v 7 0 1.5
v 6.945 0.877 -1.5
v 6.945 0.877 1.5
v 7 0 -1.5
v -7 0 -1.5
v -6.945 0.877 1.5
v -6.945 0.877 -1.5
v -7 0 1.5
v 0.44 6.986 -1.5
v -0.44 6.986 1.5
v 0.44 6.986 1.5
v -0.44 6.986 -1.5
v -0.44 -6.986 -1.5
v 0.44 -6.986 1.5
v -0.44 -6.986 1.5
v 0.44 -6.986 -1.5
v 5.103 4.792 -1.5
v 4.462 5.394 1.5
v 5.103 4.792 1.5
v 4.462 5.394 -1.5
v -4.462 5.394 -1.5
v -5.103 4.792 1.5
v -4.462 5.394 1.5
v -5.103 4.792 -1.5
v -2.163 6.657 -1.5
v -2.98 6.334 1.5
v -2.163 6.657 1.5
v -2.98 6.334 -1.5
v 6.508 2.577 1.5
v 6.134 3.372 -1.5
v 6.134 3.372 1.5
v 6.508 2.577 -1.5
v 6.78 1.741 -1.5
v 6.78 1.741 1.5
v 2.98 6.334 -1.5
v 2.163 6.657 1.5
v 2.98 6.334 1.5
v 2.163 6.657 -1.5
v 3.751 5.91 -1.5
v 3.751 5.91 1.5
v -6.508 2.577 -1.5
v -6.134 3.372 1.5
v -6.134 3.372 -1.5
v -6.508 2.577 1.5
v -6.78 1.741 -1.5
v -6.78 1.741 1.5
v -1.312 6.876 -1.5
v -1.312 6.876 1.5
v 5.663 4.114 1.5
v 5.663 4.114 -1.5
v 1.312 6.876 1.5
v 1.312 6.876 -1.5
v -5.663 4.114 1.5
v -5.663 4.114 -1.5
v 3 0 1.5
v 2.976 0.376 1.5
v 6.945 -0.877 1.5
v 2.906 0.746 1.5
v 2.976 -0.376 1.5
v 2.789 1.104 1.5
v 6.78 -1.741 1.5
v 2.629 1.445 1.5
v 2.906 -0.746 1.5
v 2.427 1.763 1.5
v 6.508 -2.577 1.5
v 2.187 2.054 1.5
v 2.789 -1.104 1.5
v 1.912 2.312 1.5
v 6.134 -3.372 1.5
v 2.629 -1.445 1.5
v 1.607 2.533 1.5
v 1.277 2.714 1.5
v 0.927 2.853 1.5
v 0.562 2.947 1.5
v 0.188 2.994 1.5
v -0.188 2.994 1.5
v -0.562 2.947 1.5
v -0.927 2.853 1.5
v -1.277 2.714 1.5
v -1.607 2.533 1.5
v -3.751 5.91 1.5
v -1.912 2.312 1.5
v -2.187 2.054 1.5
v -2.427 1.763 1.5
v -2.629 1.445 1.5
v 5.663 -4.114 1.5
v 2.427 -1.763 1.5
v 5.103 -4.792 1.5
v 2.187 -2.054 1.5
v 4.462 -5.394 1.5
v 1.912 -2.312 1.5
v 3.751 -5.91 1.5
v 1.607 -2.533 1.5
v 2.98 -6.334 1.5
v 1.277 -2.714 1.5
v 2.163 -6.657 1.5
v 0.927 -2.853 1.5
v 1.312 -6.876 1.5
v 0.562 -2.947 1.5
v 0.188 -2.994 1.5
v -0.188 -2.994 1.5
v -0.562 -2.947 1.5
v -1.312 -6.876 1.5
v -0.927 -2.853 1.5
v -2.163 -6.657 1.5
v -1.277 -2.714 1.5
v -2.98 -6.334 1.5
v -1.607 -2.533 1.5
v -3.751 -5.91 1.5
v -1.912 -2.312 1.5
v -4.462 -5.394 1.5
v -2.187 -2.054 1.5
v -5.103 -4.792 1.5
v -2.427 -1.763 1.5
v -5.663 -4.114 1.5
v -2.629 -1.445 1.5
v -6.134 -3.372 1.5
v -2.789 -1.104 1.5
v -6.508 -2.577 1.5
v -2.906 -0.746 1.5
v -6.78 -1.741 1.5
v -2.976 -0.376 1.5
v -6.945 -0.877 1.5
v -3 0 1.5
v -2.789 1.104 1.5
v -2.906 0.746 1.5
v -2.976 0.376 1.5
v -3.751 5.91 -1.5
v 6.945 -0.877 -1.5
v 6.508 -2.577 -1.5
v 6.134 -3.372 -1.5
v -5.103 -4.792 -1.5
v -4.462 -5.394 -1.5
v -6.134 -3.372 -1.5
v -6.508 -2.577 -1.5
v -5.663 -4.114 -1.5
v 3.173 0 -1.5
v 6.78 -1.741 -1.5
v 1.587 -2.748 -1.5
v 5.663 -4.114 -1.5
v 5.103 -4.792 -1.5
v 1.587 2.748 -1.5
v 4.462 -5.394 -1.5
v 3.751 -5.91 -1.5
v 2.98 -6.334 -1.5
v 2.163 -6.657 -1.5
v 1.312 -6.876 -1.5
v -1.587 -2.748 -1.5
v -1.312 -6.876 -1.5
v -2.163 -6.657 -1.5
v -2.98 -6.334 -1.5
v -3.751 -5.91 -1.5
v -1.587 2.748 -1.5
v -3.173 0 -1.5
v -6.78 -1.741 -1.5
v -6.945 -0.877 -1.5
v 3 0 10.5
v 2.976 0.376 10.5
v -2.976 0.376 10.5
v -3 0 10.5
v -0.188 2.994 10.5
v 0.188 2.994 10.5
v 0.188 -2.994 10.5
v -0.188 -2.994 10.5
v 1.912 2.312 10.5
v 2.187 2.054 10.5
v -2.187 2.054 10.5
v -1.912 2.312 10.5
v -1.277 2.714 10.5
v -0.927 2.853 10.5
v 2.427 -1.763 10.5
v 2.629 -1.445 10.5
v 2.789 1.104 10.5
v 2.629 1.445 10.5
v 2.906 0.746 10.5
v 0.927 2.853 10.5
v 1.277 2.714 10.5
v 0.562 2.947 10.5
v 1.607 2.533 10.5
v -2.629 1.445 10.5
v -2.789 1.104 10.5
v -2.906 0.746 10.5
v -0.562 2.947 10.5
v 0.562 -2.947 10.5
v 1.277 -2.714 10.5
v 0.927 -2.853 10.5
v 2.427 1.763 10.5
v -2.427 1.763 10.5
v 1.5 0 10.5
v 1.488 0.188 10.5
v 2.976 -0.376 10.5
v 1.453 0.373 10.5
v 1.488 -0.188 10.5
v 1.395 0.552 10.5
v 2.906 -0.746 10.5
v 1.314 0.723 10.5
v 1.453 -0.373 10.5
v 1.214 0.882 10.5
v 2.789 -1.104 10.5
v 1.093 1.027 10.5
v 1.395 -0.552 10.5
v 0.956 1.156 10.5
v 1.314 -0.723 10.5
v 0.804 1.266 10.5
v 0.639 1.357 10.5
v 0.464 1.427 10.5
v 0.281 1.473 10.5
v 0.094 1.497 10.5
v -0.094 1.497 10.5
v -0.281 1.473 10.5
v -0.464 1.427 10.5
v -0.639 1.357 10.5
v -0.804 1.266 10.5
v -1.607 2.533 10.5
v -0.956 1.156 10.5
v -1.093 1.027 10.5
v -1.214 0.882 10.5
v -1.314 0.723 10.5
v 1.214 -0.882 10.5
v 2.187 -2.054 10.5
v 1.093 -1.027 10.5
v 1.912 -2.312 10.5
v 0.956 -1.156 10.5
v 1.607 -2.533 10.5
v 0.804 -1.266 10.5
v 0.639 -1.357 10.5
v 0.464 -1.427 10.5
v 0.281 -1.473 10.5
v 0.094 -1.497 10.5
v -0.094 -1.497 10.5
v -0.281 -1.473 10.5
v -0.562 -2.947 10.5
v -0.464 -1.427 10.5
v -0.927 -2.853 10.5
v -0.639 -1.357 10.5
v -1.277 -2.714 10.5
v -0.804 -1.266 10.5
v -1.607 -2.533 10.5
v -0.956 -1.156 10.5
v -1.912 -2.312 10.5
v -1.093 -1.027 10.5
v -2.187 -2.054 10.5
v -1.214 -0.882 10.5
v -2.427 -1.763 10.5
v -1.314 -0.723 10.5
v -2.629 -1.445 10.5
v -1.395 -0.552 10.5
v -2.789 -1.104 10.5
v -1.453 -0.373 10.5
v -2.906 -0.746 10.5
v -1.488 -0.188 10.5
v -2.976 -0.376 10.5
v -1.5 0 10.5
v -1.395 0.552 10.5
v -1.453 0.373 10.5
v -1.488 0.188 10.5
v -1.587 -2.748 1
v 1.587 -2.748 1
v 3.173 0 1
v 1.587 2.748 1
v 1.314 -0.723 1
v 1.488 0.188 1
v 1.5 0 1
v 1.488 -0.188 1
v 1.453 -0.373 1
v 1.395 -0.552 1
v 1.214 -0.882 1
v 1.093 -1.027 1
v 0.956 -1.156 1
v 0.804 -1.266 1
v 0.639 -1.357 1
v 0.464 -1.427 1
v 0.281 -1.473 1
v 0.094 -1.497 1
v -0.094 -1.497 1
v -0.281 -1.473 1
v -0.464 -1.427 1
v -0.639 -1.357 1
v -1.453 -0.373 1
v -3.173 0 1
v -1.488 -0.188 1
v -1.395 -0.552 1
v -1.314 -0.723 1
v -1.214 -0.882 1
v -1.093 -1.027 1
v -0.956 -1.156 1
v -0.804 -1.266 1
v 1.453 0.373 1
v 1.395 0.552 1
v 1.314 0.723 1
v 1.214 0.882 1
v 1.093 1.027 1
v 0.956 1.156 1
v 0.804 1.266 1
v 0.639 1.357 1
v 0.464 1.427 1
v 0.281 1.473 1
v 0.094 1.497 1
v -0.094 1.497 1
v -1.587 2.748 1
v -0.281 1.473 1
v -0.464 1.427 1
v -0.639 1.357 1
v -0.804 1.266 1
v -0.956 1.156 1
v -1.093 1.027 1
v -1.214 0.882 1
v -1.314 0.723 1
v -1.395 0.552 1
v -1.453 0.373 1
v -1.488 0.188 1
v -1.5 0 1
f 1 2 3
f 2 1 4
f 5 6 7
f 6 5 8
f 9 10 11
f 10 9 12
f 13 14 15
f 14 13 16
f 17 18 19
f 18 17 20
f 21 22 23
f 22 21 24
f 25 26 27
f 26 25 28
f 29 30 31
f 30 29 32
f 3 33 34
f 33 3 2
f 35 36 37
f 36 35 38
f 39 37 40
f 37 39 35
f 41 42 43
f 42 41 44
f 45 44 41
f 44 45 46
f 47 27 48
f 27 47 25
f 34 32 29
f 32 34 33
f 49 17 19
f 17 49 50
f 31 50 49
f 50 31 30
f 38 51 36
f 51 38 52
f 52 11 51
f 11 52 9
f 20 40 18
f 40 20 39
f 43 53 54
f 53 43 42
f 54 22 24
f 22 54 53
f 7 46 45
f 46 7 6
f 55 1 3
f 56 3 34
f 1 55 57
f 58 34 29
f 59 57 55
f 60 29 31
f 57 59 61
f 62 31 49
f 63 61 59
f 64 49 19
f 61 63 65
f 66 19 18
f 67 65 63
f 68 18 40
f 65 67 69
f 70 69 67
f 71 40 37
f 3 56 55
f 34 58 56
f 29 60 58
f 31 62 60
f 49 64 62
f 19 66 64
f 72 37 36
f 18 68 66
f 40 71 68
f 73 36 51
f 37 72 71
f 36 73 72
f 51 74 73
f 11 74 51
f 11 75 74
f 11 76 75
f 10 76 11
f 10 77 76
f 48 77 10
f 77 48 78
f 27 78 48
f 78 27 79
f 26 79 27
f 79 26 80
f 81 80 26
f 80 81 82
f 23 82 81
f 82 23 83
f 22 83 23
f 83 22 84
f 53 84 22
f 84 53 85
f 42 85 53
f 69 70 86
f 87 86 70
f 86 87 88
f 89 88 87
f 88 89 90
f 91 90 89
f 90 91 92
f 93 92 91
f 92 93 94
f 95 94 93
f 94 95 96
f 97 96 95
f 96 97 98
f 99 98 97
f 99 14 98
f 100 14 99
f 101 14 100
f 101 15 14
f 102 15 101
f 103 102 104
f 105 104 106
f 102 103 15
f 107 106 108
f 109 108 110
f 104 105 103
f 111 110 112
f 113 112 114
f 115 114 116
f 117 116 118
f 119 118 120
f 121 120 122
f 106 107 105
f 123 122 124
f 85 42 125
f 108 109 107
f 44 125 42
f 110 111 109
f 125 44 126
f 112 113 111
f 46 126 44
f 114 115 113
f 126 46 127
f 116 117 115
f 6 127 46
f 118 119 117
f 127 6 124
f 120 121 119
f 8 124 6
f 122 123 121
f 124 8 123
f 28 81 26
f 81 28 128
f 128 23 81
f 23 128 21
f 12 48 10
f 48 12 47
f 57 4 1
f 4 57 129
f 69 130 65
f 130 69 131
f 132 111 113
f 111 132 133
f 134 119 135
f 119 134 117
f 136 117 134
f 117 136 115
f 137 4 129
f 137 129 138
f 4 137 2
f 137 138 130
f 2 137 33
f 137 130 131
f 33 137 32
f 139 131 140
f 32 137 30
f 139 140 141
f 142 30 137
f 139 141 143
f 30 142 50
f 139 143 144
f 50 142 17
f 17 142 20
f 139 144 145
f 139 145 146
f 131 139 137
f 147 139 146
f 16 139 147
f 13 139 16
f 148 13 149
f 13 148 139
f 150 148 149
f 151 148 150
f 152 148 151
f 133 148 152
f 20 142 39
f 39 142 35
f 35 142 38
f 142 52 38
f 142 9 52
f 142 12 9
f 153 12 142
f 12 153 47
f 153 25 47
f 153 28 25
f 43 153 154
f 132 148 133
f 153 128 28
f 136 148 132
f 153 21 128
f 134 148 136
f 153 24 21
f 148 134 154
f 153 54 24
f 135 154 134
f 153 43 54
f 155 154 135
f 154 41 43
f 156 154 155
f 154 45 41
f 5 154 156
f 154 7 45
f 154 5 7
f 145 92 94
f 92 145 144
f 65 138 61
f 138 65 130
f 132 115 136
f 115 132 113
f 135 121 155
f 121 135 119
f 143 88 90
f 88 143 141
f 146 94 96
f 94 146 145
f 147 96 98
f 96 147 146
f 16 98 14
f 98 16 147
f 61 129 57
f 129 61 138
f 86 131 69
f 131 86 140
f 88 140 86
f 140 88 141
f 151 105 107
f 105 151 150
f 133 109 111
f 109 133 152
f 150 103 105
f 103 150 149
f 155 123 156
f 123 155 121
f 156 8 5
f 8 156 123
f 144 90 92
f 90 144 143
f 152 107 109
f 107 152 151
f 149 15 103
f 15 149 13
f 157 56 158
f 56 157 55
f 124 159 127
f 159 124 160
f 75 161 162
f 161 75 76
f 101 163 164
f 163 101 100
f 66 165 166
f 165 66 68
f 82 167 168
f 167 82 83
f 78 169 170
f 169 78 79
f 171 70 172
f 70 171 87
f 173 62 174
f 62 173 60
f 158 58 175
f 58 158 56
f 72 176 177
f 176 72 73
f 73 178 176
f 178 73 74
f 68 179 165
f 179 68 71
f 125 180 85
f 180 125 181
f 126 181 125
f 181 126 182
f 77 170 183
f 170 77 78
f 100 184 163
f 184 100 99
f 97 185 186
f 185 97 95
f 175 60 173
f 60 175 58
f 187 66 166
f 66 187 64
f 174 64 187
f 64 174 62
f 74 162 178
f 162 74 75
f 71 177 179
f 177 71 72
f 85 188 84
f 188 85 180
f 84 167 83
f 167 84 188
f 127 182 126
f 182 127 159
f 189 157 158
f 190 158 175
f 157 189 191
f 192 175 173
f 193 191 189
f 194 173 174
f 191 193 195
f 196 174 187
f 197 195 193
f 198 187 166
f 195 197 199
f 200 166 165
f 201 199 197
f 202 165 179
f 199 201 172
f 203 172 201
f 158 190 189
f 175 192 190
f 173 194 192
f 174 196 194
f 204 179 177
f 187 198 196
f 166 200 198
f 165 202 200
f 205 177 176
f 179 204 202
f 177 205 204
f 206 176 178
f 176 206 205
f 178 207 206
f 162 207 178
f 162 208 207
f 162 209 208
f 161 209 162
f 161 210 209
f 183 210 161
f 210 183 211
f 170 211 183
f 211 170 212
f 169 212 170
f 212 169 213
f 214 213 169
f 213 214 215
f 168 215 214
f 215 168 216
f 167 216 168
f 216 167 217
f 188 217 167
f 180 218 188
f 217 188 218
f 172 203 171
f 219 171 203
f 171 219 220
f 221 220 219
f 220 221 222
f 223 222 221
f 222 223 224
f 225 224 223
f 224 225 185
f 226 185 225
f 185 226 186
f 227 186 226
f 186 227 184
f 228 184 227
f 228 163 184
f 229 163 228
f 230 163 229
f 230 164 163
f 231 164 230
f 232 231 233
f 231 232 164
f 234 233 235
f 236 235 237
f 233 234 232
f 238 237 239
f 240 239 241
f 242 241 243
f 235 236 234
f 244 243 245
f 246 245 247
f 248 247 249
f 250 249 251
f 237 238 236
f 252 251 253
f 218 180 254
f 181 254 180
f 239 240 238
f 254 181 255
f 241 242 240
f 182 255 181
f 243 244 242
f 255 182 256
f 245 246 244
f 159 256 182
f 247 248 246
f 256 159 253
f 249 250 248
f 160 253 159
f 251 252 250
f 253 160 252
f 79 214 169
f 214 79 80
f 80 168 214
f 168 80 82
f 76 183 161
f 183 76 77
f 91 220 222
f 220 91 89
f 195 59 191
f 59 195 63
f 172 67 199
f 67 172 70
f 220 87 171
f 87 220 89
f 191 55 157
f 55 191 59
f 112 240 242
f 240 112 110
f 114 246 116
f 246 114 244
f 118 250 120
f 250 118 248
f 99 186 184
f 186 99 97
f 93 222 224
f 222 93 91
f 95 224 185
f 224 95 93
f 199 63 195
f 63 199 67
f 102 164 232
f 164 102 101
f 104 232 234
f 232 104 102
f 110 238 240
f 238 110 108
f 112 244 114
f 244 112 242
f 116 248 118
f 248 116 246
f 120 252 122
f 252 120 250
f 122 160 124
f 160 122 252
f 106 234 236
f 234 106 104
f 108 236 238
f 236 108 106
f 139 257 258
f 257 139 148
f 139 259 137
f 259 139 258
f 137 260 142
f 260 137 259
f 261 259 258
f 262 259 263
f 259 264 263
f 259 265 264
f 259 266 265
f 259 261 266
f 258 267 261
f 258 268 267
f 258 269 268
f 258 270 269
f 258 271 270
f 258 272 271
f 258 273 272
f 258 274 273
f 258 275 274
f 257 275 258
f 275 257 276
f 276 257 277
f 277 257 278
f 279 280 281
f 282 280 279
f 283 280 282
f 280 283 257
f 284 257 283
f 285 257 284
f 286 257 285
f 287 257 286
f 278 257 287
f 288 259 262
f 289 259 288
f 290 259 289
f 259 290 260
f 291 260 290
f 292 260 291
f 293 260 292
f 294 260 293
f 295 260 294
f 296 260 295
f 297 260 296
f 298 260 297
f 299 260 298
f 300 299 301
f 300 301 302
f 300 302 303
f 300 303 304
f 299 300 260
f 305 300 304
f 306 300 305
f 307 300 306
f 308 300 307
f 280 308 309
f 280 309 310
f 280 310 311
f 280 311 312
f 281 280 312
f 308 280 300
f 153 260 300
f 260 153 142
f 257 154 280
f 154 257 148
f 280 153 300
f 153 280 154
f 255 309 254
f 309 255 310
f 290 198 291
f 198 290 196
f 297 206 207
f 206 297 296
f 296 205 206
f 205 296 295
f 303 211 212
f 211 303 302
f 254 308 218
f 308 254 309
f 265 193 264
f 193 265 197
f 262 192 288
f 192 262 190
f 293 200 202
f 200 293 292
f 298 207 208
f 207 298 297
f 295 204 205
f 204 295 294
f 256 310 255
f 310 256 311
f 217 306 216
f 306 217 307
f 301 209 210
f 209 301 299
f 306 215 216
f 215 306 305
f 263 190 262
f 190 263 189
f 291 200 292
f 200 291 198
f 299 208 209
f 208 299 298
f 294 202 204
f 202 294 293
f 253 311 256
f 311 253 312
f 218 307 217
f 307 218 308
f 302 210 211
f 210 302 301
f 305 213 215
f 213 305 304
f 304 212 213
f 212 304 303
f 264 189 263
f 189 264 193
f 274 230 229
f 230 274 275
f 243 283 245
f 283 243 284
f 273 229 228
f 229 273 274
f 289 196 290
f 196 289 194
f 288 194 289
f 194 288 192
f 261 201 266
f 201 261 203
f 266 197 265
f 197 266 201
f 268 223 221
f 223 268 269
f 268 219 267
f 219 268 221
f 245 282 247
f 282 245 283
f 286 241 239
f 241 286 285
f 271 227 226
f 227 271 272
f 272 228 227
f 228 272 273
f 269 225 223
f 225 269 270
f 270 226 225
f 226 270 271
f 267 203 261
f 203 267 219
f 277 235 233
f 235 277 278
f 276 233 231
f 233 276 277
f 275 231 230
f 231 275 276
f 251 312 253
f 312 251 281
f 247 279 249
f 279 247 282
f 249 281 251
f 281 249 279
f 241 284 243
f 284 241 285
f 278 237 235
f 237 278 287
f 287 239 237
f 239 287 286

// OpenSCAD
$fn = 50;


difference() {
	union() {
		translate(v = [0, 0, -1.5000000000]) {
			cylinder(h = 3, r = 7.0000000000);
		}
		translate(v = [0, 0, -1.5000000000]) {
			cylinder(h = 12, r = 3.0000000000);
		}
	}
	union() {
		translate(v = [0, 0, -1.5000000000]) {
			rotate(a = [0, 0, 0]) {
				difference() {
					union() {
						linear_extrude(height = 2.5000000000) {
							polygon(points = [[3.1735000000, 0.0000000000], [1.5867500000, 2.7483316189], [-1.5867500000, 2.7483316189], [-3.1735000000, 0.0000000000], [-1.5867500000, -2.7483316189], [1.5867500000, -2.7483316189]]);
						}
					}
					union();
				}
			}
		}
		translate(v = [0, 0, -50.0000000000]) {
			cylinder(h = 100, r = 1.5000000000);
		}
	}
}
